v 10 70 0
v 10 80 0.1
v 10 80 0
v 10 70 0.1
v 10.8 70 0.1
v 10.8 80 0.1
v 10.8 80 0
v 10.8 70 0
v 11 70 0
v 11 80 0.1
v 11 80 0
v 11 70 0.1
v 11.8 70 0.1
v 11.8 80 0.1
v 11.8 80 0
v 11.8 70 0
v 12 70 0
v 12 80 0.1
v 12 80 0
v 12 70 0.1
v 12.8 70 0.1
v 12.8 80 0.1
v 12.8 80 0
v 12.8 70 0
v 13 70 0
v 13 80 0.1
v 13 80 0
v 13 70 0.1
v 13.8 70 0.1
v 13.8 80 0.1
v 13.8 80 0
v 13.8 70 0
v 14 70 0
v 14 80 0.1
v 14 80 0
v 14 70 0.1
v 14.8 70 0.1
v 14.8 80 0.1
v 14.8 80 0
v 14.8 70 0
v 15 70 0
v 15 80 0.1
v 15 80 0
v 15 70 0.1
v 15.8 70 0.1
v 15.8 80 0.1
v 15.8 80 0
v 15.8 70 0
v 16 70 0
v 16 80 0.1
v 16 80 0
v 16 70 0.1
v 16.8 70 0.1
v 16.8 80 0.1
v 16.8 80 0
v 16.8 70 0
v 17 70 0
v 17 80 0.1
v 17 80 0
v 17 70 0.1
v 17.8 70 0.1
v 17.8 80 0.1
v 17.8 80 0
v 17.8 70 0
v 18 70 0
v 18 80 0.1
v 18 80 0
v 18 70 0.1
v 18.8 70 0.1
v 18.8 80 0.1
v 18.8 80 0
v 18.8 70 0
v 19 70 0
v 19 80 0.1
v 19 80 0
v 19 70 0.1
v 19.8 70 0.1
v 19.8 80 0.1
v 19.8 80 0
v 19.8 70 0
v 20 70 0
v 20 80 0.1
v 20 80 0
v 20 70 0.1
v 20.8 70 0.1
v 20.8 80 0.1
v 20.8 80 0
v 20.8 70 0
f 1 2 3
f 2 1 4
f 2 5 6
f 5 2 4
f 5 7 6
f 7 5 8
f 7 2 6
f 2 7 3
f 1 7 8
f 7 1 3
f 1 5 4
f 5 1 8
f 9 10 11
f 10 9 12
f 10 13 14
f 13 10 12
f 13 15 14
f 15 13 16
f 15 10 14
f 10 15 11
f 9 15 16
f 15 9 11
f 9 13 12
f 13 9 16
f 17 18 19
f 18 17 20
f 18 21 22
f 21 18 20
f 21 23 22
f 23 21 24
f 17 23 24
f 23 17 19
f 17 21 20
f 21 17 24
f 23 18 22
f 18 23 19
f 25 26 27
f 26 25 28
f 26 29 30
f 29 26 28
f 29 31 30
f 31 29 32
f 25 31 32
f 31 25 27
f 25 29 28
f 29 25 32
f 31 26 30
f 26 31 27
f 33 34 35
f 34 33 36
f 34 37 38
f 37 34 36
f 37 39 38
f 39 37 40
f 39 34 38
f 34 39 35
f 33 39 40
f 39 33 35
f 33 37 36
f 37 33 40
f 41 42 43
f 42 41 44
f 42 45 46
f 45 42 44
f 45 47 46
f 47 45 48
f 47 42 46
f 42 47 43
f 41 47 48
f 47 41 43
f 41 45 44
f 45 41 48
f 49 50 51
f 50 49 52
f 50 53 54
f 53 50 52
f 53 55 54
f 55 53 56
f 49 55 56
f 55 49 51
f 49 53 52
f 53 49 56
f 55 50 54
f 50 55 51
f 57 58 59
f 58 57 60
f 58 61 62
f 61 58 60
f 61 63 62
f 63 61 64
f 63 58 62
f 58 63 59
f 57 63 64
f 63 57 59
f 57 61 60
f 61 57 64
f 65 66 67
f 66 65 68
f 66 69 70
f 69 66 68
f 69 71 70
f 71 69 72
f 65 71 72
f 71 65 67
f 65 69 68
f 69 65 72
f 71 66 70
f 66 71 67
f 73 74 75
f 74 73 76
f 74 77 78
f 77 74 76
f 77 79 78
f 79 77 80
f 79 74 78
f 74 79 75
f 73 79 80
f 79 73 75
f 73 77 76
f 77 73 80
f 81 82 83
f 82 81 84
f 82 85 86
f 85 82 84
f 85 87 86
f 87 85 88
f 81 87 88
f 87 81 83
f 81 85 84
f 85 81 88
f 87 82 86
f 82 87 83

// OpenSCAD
translate([10+0,10+60,0])
        for (i = [0 : 10]){
            translate([i,0,0])
                cube(size = [0.8,10,0.1]);
    }
